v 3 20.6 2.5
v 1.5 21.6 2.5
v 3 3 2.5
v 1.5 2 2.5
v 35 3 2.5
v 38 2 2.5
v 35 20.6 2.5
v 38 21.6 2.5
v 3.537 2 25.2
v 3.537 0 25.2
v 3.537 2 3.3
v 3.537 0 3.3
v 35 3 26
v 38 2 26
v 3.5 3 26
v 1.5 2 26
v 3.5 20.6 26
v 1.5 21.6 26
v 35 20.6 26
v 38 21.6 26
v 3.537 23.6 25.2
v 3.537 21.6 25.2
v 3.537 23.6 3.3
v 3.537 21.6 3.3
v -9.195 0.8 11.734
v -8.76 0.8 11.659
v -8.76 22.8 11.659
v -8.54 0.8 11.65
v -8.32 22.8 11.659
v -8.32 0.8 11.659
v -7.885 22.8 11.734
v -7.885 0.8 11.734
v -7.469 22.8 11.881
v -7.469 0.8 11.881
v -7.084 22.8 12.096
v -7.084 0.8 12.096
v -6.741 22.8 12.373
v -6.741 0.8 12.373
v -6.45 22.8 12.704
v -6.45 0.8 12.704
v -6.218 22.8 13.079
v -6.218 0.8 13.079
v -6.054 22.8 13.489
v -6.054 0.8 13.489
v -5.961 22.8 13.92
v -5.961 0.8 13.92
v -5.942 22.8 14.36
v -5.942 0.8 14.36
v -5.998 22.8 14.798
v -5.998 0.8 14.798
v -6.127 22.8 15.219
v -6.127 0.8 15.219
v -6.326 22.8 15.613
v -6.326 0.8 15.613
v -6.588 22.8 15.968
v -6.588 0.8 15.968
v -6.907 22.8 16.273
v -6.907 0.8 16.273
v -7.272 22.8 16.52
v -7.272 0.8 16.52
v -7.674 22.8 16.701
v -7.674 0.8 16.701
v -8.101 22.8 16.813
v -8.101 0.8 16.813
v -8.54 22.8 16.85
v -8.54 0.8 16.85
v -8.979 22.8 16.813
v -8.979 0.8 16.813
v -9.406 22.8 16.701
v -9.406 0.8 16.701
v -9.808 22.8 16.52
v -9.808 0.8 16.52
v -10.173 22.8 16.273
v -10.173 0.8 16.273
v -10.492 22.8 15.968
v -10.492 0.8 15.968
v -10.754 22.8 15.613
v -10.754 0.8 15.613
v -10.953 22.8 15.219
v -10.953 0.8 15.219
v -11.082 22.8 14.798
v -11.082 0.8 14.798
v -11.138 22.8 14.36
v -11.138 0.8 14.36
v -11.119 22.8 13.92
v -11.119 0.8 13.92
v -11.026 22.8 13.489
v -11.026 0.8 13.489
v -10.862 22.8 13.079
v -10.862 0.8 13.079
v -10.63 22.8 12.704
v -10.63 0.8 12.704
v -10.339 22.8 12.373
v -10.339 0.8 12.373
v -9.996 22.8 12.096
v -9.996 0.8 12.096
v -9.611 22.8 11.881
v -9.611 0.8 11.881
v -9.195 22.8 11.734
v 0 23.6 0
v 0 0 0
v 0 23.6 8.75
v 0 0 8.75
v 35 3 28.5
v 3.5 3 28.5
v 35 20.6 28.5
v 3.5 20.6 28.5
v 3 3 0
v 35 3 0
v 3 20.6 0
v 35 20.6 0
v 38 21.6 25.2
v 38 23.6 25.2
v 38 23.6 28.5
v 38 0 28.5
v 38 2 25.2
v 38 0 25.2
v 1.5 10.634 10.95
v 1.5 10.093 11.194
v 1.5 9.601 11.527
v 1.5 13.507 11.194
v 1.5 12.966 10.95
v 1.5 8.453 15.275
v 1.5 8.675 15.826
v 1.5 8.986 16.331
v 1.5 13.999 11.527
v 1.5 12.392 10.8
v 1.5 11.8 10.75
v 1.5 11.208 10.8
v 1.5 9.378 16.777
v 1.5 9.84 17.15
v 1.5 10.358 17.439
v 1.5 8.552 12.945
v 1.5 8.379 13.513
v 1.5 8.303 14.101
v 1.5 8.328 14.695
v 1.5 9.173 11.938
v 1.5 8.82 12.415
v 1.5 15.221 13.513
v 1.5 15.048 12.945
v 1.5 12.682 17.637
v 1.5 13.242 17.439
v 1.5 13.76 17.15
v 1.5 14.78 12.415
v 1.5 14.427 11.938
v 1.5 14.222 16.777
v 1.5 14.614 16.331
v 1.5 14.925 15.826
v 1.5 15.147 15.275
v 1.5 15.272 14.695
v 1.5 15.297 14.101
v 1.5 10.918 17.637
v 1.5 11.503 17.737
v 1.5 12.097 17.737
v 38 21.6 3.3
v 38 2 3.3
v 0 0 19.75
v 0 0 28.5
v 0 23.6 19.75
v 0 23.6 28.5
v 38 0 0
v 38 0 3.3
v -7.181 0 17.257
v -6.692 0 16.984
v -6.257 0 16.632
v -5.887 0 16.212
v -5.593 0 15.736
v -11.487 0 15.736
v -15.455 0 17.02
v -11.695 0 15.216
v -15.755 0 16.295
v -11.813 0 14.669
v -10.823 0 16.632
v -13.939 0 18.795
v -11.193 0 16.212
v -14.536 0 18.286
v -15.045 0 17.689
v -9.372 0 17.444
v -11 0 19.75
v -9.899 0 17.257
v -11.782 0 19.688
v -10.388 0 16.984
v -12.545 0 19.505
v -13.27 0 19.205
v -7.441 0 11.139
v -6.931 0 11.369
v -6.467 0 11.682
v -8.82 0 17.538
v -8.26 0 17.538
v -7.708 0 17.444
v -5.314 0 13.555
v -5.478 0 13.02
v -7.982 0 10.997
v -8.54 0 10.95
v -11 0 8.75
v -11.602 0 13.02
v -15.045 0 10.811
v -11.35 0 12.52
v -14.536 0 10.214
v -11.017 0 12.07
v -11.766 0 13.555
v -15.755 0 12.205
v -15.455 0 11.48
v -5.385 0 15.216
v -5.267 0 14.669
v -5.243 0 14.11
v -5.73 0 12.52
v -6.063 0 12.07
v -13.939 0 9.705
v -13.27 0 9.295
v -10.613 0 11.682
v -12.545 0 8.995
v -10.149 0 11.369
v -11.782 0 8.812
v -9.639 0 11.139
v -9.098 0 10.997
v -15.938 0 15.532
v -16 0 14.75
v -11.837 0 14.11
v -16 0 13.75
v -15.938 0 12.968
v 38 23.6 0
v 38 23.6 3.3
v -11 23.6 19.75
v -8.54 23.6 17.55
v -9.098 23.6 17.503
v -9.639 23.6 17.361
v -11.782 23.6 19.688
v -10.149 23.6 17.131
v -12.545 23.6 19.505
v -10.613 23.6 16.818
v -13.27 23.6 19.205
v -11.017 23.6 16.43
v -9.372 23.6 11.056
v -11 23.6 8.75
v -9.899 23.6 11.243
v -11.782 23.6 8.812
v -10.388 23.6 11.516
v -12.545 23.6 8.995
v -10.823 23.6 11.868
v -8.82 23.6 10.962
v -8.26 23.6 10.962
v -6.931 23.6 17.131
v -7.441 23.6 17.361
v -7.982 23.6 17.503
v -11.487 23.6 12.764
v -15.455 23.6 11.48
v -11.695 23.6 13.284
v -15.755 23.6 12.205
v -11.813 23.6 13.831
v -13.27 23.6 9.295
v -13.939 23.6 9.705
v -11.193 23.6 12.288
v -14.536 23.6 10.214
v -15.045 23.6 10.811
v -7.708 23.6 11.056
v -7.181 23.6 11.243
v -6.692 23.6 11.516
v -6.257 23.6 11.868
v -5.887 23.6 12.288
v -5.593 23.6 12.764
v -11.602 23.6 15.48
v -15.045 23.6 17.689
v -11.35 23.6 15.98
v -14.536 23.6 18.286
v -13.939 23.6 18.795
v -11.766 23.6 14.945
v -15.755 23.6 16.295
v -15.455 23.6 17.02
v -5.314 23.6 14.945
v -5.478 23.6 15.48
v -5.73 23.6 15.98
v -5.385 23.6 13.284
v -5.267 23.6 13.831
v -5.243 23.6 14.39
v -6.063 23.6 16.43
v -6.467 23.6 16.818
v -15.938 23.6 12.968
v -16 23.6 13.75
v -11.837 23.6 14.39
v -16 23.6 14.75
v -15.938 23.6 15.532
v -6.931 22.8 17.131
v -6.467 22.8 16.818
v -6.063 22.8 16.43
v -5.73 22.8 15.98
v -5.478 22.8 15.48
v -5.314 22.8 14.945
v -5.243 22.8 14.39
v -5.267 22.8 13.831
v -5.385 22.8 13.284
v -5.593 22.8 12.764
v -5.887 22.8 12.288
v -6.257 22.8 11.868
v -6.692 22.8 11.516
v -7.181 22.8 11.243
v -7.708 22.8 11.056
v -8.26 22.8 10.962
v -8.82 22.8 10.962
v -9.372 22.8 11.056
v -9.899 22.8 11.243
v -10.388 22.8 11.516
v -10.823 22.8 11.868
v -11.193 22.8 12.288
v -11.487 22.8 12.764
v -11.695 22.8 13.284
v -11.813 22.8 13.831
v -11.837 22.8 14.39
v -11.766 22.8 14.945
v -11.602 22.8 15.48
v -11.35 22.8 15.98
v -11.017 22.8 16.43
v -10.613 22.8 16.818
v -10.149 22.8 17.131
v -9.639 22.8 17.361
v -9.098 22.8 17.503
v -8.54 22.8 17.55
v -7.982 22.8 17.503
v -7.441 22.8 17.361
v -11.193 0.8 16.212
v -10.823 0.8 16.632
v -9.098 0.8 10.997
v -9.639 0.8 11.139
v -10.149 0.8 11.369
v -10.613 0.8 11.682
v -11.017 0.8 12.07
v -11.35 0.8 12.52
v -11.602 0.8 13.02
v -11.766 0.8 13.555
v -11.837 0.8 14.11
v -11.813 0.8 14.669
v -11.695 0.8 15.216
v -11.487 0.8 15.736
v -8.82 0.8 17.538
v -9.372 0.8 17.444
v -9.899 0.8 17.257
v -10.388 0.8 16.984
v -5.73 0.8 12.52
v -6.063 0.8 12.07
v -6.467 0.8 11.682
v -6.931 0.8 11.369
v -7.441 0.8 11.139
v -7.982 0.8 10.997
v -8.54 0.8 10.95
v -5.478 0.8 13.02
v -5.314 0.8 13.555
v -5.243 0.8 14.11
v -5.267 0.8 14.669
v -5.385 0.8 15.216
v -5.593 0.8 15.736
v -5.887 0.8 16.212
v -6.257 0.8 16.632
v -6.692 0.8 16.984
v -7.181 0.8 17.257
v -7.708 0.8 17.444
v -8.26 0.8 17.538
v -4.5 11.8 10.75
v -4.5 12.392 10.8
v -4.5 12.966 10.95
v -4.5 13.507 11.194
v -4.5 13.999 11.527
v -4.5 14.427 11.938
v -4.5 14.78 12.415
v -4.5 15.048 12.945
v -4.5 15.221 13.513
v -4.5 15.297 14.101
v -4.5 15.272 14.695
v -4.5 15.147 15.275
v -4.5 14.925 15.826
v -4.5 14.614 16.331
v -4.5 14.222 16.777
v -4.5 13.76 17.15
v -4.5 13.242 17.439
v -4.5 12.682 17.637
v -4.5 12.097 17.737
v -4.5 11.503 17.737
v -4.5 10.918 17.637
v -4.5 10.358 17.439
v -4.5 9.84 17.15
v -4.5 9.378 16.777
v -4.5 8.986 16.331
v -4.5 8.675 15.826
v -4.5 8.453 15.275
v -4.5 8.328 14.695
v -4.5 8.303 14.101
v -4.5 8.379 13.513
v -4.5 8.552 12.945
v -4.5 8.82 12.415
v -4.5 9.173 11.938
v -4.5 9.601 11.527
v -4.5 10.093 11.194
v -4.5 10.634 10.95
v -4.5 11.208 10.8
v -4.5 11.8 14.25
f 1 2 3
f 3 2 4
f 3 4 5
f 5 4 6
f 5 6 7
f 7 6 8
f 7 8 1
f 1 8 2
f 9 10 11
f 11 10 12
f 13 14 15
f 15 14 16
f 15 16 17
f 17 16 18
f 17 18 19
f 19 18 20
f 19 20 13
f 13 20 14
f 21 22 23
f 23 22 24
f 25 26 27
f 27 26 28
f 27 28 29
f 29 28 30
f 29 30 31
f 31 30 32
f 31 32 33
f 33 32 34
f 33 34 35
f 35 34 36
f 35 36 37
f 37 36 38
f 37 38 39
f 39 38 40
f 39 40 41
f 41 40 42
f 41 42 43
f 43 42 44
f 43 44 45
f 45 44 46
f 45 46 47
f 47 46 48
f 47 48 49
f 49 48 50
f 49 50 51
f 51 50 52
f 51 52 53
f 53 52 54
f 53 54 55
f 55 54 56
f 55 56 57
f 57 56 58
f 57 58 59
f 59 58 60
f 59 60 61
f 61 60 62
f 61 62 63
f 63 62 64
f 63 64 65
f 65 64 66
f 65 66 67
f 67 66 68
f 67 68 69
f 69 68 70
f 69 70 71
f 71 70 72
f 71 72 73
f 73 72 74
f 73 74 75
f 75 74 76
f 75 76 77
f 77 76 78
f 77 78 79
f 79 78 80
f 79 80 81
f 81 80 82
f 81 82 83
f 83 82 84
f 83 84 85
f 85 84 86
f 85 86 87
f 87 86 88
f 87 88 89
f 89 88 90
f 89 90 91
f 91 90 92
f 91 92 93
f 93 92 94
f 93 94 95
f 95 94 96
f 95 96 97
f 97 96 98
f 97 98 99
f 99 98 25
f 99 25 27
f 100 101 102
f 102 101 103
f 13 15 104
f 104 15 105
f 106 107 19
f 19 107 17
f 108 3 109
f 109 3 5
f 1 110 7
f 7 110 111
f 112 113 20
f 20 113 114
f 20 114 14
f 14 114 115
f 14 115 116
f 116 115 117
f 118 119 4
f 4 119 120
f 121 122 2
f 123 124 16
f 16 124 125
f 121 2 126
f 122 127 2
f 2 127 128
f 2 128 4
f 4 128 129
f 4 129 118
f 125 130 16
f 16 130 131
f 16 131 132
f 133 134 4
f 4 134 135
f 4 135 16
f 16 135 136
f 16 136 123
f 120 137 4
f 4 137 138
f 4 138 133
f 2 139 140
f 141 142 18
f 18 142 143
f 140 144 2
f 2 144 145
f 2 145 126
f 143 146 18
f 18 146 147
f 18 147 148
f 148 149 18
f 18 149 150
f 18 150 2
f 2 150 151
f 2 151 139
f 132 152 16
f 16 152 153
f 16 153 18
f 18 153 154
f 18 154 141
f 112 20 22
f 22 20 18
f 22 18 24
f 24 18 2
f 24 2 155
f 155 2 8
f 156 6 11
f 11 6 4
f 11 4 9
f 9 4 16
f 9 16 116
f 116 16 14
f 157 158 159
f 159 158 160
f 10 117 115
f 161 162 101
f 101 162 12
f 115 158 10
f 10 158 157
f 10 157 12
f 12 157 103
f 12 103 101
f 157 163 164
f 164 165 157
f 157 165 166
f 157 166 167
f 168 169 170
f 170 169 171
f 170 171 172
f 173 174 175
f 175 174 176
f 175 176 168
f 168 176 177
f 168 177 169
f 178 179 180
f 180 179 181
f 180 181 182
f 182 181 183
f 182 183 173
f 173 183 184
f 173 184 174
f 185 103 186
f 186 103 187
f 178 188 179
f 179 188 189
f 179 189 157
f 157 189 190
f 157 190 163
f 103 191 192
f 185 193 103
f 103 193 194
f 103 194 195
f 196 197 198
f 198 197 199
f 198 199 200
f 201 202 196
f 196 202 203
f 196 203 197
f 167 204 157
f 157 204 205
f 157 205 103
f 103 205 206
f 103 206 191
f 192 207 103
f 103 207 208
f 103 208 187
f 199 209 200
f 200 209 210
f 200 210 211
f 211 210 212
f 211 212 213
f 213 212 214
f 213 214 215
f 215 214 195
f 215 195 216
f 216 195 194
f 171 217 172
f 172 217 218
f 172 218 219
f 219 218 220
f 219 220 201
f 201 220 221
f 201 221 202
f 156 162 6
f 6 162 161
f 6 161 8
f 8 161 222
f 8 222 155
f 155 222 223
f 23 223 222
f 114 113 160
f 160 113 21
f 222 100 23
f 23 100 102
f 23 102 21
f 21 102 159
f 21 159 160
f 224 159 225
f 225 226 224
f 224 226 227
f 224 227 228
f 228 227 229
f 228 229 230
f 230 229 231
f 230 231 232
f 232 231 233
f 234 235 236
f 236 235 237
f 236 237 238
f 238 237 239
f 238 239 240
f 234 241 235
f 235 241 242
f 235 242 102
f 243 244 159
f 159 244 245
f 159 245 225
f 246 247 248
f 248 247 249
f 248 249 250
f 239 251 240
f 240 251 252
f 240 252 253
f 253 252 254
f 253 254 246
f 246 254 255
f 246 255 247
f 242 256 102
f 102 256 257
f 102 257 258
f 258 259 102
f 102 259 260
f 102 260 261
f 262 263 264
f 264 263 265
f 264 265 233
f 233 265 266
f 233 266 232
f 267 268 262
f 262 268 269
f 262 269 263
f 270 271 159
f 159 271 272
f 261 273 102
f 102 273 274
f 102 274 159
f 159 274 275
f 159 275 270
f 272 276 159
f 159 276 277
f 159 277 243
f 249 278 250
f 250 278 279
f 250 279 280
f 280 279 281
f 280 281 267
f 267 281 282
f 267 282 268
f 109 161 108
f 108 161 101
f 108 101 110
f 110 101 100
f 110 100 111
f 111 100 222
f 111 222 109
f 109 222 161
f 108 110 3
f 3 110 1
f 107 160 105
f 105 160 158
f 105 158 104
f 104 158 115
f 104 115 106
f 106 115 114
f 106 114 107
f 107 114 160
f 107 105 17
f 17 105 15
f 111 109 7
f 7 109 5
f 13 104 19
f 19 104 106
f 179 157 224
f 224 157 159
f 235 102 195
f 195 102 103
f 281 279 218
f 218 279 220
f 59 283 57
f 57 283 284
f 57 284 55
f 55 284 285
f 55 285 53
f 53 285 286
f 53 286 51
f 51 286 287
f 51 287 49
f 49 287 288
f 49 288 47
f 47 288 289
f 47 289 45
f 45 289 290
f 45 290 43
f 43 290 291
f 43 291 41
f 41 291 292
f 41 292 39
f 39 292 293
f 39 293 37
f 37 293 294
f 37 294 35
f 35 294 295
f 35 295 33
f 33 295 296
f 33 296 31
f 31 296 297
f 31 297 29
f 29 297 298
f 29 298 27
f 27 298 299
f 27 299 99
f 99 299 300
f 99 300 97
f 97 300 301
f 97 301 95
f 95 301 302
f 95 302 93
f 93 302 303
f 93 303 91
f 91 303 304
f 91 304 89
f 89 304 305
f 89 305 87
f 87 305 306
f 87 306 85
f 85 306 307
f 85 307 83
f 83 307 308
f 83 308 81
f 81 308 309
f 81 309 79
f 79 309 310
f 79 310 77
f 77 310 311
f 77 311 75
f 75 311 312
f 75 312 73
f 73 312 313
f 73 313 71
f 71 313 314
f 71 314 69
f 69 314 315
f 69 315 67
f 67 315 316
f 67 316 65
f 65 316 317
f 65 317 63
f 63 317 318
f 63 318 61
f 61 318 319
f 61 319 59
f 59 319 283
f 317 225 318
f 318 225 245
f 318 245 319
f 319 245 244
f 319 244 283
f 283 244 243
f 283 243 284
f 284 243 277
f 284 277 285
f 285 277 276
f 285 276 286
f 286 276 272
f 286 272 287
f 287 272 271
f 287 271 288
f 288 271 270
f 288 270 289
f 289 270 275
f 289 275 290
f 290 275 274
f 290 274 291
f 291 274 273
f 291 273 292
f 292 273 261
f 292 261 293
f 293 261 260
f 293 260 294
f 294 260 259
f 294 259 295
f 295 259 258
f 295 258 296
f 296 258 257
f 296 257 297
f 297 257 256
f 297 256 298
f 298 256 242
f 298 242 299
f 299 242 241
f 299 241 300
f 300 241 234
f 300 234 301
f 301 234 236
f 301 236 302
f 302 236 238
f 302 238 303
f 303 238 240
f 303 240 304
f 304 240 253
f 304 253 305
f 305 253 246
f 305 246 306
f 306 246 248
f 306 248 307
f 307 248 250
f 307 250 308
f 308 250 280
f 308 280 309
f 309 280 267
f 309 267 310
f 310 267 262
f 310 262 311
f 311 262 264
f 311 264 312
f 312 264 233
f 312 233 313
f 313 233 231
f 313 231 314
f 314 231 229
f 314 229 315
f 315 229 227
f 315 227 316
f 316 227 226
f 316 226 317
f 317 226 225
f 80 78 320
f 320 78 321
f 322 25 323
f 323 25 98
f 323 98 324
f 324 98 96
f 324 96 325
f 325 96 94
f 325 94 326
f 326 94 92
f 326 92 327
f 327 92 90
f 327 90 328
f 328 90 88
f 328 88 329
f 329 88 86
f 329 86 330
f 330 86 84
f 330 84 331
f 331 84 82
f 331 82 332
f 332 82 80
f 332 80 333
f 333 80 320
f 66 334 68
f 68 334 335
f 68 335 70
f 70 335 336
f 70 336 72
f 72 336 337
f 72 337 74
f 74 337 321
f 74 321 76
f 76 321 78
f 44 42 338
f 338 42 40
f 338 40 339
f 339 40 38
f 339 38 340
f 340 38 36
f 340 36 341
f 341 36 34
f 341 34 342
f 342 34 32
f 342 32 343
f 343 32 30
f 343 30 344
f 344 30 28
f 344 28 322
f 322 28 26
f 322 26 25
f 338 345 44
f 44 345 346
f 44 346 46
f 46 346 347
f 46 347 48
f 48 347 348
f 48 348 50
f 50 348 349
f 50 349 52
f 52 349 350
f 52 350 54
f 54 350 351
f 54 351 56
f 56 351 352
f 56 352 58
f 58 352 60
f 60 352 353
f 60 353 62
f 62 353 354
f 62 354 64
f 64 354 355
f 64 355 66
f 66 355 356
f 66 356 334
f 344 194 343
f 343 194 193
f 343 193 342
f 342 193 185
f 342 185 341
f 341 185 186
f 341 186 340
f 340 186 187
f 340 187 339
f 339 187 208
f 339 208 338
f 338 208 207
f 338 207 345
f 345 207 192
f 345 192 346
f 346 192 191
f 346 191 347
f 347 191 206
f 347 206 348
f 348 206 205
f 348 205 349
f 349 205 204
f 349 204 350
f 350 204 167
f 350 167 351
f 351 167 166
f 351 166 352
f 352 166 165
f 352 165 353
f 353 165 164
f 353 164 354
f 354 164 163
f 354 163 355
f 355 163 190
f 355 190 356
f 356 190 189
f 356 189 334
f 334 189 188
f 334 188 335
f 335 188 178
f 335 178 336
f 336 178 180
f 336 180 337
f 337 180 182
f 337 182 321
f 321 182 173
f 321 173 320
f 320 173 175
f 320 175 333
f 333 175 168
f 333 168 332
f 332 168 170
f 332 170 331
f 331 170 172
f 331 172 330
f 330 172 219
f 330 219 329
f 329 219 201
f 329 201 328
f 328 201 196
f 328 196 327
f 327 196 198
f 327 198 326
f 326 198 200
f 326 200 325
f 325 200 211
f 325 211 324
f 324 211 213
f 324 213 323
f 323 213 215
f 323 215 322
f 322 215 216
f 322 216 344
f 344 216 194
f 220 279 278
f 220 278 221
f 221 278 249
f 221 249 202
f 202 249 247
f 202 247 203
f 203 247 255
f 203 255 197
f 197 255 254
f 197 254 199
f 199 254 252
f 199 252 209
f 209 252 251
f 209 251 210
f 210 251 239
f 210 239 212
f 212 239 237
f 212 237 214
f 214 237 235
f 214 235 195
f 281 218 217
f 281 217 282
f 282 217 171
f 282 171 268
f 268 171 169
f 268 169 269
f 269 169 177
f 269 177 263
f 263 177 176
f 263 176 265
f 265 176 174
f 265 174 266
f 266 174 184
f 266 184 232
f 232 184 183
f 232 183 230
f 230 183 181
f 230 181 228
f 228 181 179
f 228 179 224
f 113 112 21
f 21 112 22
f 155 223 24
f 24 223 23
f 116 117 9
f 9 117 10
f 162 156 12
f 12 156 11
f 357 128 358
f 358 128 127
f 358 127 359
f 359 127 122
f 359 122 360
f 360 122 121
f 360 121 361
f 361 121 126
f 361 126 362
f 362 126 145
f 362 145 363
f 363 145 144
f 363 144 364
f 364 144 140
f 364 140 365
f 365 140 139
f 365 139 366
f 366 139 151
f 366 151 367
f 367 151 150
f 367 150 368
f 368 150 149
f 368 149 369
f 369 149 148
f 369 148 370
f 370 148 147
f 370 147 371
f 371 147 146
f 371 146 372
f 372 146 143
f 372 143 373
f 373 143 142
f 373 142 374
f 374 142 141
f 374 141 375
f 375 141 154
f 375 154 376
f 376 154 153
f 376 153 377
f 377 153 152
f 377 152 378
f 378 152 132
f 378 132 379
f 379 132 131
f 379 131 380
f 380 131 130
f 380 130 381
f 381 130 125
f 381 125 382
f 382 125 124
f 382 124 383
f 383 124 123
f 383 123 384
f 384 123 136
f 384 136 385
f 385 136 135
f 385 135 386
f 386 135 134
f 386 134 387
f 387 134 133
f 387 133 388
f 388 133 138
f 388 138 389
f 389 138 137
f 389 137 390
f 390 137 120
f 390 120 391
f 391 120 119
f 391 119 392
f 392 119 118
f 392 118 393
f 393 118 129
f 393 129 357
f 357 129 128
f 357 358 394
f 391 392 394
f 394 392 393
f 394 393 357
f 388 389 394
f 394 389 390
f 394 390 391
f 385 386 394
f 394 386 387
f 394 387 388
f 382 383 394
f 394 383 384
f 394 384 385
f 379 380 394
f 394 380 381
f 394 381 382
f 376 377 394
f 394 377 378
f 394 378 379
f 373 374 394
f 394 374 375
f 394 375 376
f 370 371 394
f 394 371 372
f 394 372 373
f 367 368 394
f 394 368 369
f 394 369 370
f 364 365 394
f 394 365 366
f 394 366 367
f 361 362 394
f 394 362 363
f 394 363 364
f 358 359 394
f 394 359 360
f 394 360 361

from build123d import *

# Parameters (mm, degrees)
SKETCH2_W            = 38
SKETCH2_H            = 23.6
BOSS_EXTRUDE2_DEPTH  = 2.5
SKETCH3_W            = 35
SKETCH3_H            = 17.6
CUT_EXTRUDE2_DEPTH   = 2.5
SKETCH5_W            = 36.5
SKETCH5_H            = 2
SKETCH5_W_2          = 1.5
SKETCH5_H_2          = 19.6
BOSS_EXTRUDE3_DEPTH  = 26
SKETCH7_W            = 36.5
SKETCH7_H            = 2.5
BOSS_EXTRUDE5_DEPTH  = 1
SKETCH10_W           = 12.597499818
SKETCH10_H           = 2.5
SKETCH10_W_2         = 23.902500182
BOSS_EXTRUDE6_DEPTH  = 1
SKETCH11_W           = 2.5
SKETCH11_H           = 17.6
BOSS_EXTRUDE7_DEPTH  = 2
SKETCH15_W           = 30.589508609
SKETCH15_H           = 23.5
SKETCH15_W_2         = 3.8732763
CUT_EXTRUDE4_DEPTH   = 30
SKETCH16_W           = 3
SKETCH16_H           = 2.5
BOSS_EXTRUDE8_DEPTH  = 20
SKETCH17_W           = 3
SKETCH17_H           = 2.5
BOSS_EXTRUDE9_DEPTH  = 20
SKETCH19_W           = 5.5
SKETCH19_H           = 23.6
BOSS_EXTRUDE10_DEPTH = 16
SKETCH20_R           = 2.6
CUT_EXTRUDE6_DEPTH   = 30
SKETCH21_R           = 3.3
CUT_EXTRUDE7_DEPTH   = 0.8
SKETCH22_R           = 3.3
CUT_EXTRUDE8_DEPTH   = 0.8
FILLET1_R            = 5
FILLET3_R            = 5
SKETCH23_W           = 34.462784909
SKETCH23_H           = 2
BOSS_EXTRUDE11_DEPTH = 0.8
SKETCH24_W           = 34.462784909
SKETCH24_H           = 2
BOSS_EXTRUDE12_DEPTH = 0.8
SKETCH25_W           = 34.462784909
SKETCH25_H           = 2
BOSS_EXTRUDE13_DEPTH = 0.8
SKETCH26_W           = 34.462784909
SKETCH26_H           = 2
BOSS_EXTRUDE14_DEPTH = 0.8
CUT_EXTRUDE9_DEPTH   = 6


with BuildPart() as part:
    # Sketch2 → Boss-Extrude2 (new body)
    with BuildSketch(Plane.XY):
        with Locations((19, 11.8)):
            Rectangle(SKETCH2_W, SKETCH2_H)
    extrude(amount=BOSS_EXTRUDE2_DEPTH)

    # Sketch3 → Cut-Extrude2 (cut)
    with BuildSketch(Plane.XY.offset(2.5)):
        with Locations((20.5, 11.8)):
            Rectangle(SKETCH3_W, SKETCH3_H)
    extrude(amount=-CUT_EXTRUDE2_DEPTH, mode=Mode.SUBTRACT)

    # Sketch5 → Boss-Extrude3 (add)
    with BuildSketch(Plane.XY.offset(2.5)):
        with Locations((19.75, 22.6)):
            Rectangle(SKETCH5_W, SKETCH5_H)
        with Locations((0.75, 22.6)):
            Rectangle(SKETCH5_W_2, SKETCH5_H)
        with Locations((0.75, 11.8)):
            Rectangle(SKETCH5_W_2, SKETCH5_H_2)
        with Locations((0.75, 1)):
            Rectangle(SKETCH5_W_2, SKETCH5_H)
        with Locations((19.75, 1)):
            Rectangle(SKETCH5_W, SKETCH5_H)
    extrude(amount=BOSS_EXTRUDE3_DEPTH)

    # Sketch7 → Boss-Extrude5 (add)
    with BuildSketch(Plane(origin=(0, 2, 0), x_dir=(1, 0, 0), z_dir=(0, 1, 0))):
        with Locations((19.75, -27.25)):
            Rectangle(SKETCH7_W, SKETCH7_H)
    extrude(amount=BOSS_EXTRUDE5_DEPTH)

    # Sketch10 → Boss-Extrude6 (add)
    with BuildSketch(Plane.XZ.offset(-21.6)):
        with Locations((31.701250091, 27.25)):
            Rectangle(SKETCH10_W, SKETCH10_H)
        with Locations((13.451250091, 27.25)):
            Rectangle(SKETCH10_W_2, SKETCH10_H)
    extrude(amount=BOSS_EXTRUDE6_DEPTH)

    # Sketch11 → Boss-Extrude7 (add)
    with BuildSketch(Plane(origin=(1.5, 0, 0), x_dir=(0, 0, -1), z_dir=(1, 0, 0))):
        with Locations((-27.25, 11.8)):
            Rectangle(SKETCH11_W, SKETCH11_H)
    extrude(amount=BOSS_EXTRUDE7_DEPTH)

    # Sketch15 → Cut-Extrude4 (cut)
    with BuildSketch(Plane(origin=(0, 23.6, 0), x_dir=(1, 0, 0), z_dir=(0, 1, 0))):
        with Locations((18.831969395, -14.25)):
            Rectangle(SKETCH15_W, SKETCH15_H)
        with Locations((36.06336185, -14.25)):
            Rectangle(SKETCH15_W_2, SKETCH15_H)
    extrude(amount=-CUT_EXTRUDE4_DEPTH, mode=Mode.SUBTRACT)

    # Sketch16 → Boss-Extrude8 (add)
    with BuildSketch(Plane(origin=(0, 3, 0), x_dir=(1, 0, 0), z_dir=(0, 1, 0))):
        with Locations((36.5, -1.25)):
            Rectangle(SKETCH16_W, SKETCH16_H)
    extrude(amount=BOSS_EXTRUDE8_DEPTH)

    # Sketch17 → Boss-Extrude9 (add)
    with BuildSketch(Plane(origin=(0, 3, 0), x_dir=(1, 0, 0), z_dir=(0, 1, 0))):
        with Locations((36.5, -27.25)):
            Rectangle(SKETCH17_W, SKETCH17_H)
    extrude(amount=BOSS_EXTRUDE9_DEPTH)

    # Sketch19 → Boss-Extrude10 (add)
    with BuildSketch(Plane.ZY):
        with Locations((17, 11.8)):
            Rectangle(SKETCH19_W, SKETCH19_H)
        with Locations((11.5, 11.8)):
            Rectangle(SKETCH19_W, SKETCH19_H)
    extrude(amount=BOSS_EXTRUDE10_DEPTH)

    # Sketch20 → Cut-Extrude6 (cut)
    with BuildSketch(Plane(origin=(0, 23.6, 0), x_dir=(1, 0, 0), z_dir=(0, 1, 0))):
        with Locations((-8.54, -14.25)):
            Circle(SKETCH20_R)
    extrude(amount=-CUT_EXTRUDE6_DEPTH, mode=Mode.SUBTRACT)

    # Sketch21 → Cut-Extrude7 (cut)
    with BuildSketch(Plane(origin=(0, 23.6, 0), x_dir=(1, 0, 0), z_dir=(0, 1, 0))):
        with Locations((-8.54, -14.25)):
            Circle(SKETCH21_R)
    extrude(amount=-CUT_EXTRUDE7_DEPTH, mode=Mode.SUBTRACT)

    # Sketch22 → Cut-Extrude8 (cut)
    with BuildSketch(Plane.XZ):
        with Locations((-8.54, 14.25)):
            Circle(SKETCH22_R)
    extrude(amount=-CUT_EXTRUDE8_DEPTH, mode=Mode.SUBTRACT)

    # Fillet1
    fillet1_edges = [part.edges().sort_by_distance(p)[0] for p in [
        (-16, 11.8, 8.75),
    ]]
    fillet(fillet1_edges, radius=FILLET1_R)

    # Fillet3
    fillet3_edges = [part.edges().sort_by_distance(p)[0] for p in [
        (-16, 11.8, 19.75),
    ]]
    fillet(fillet3_edges, radius=FILLET3_R)

    # Sketch23 → Boss-Extrude11 (add)
    with BuildSketch(Plane(origin=(0, 0, 26), x_dir=(-1, 0, 0), z_dir=(0, 0, -1))):
        with Locations((-20.768607546, 22.6)):
            Rectangle(SKETCH23_W, SKETCH23_H)
    extrude(amount=BOSS_EXTRUDE11_DEPTH)

    # Sketch24 → Boss-Extrude12 (add)
    with BuildSketch(Plane.XY.offset(2.5)):
        with Locations((20.768607546, 22.6)):
            Rectangle(SKETCH24_W, SKETCH24_H)
    extrude(amount=BOSS_EXTRUDE12_DEPTH)

    # Sketch25 → Boss-Extrude13 (add)
    with BuildSketch(Plane(origin=(0, 0, 26), x_dir=(-1, 0, 0), z_dir=(0, 0, -1))):
        with Locations((-20.768607546, 1)):
            Rectangle(SKETCH25_W, SKETCH25_H)
    extrude(amount=BOSS_EXTRUDE13_DEPTH)

    # Sketch26 → Boss-Extrude14 (add)
    with BuildSketch(Plane.XY.offset(2.5)):
        with Locations((20.768607546, 1)):
            Rectangle(SKETCH26_W, SKETCH26_H)
    extrude(amount=BOSS_EXTRUDE14_DEPTH)

    # Sketch27 → Cut-Extrude9 (cut)
    with BuildSketch(Plane(origin=(1.5, 0, 0), x_dir=(0, 0, -1), z_dir=(1, 0, 0))):
        with BuildLine():
            ThreePointArc((-17.75, 11.8), (-16.724873734, 9.325126266), (-14.25, 8.3))
            Line((-14.25, 8.3), (-14.25, 11.8))
            Line((-14.25, 11.8), (-17.75, 11.8))
        make_face()
        with BuildLine():
            Line((-14.25, 11.8), (-14.25, 8.3))
            ThreePointArc((-14.25, 8.3), (-11.775126266, 9.325126266), (-10.75, 11.8))
            Line((-10.75, 11.8), (-14.25, 11.8))
        make_face()
        with BuildLine():
            Line((-17.75, 11.8), (-14.25, 11.8))
            Line((-14.25, 11.8), (-14.25, 15.3))
            ThreePointArc((-14.25, 15.3), (-16.724873734, 14.274873734), (-17.75, 11.8))
        make_face()
        with BuildLine():
            Line((-14.25, 15.3), (-14.25, 11.8))
            Line((-14.25, 11.8), (-10.75, 11.8))
            ThreePointArc((-10.75, 11.8), (-11.775126266, 14.274873734), (-14.25, 15.3))
        make_face()
    extrude(amount=-CUT_EXTRUDE9_DEPTH, mode=Mode.SUBTRACT)


solid = part.part
